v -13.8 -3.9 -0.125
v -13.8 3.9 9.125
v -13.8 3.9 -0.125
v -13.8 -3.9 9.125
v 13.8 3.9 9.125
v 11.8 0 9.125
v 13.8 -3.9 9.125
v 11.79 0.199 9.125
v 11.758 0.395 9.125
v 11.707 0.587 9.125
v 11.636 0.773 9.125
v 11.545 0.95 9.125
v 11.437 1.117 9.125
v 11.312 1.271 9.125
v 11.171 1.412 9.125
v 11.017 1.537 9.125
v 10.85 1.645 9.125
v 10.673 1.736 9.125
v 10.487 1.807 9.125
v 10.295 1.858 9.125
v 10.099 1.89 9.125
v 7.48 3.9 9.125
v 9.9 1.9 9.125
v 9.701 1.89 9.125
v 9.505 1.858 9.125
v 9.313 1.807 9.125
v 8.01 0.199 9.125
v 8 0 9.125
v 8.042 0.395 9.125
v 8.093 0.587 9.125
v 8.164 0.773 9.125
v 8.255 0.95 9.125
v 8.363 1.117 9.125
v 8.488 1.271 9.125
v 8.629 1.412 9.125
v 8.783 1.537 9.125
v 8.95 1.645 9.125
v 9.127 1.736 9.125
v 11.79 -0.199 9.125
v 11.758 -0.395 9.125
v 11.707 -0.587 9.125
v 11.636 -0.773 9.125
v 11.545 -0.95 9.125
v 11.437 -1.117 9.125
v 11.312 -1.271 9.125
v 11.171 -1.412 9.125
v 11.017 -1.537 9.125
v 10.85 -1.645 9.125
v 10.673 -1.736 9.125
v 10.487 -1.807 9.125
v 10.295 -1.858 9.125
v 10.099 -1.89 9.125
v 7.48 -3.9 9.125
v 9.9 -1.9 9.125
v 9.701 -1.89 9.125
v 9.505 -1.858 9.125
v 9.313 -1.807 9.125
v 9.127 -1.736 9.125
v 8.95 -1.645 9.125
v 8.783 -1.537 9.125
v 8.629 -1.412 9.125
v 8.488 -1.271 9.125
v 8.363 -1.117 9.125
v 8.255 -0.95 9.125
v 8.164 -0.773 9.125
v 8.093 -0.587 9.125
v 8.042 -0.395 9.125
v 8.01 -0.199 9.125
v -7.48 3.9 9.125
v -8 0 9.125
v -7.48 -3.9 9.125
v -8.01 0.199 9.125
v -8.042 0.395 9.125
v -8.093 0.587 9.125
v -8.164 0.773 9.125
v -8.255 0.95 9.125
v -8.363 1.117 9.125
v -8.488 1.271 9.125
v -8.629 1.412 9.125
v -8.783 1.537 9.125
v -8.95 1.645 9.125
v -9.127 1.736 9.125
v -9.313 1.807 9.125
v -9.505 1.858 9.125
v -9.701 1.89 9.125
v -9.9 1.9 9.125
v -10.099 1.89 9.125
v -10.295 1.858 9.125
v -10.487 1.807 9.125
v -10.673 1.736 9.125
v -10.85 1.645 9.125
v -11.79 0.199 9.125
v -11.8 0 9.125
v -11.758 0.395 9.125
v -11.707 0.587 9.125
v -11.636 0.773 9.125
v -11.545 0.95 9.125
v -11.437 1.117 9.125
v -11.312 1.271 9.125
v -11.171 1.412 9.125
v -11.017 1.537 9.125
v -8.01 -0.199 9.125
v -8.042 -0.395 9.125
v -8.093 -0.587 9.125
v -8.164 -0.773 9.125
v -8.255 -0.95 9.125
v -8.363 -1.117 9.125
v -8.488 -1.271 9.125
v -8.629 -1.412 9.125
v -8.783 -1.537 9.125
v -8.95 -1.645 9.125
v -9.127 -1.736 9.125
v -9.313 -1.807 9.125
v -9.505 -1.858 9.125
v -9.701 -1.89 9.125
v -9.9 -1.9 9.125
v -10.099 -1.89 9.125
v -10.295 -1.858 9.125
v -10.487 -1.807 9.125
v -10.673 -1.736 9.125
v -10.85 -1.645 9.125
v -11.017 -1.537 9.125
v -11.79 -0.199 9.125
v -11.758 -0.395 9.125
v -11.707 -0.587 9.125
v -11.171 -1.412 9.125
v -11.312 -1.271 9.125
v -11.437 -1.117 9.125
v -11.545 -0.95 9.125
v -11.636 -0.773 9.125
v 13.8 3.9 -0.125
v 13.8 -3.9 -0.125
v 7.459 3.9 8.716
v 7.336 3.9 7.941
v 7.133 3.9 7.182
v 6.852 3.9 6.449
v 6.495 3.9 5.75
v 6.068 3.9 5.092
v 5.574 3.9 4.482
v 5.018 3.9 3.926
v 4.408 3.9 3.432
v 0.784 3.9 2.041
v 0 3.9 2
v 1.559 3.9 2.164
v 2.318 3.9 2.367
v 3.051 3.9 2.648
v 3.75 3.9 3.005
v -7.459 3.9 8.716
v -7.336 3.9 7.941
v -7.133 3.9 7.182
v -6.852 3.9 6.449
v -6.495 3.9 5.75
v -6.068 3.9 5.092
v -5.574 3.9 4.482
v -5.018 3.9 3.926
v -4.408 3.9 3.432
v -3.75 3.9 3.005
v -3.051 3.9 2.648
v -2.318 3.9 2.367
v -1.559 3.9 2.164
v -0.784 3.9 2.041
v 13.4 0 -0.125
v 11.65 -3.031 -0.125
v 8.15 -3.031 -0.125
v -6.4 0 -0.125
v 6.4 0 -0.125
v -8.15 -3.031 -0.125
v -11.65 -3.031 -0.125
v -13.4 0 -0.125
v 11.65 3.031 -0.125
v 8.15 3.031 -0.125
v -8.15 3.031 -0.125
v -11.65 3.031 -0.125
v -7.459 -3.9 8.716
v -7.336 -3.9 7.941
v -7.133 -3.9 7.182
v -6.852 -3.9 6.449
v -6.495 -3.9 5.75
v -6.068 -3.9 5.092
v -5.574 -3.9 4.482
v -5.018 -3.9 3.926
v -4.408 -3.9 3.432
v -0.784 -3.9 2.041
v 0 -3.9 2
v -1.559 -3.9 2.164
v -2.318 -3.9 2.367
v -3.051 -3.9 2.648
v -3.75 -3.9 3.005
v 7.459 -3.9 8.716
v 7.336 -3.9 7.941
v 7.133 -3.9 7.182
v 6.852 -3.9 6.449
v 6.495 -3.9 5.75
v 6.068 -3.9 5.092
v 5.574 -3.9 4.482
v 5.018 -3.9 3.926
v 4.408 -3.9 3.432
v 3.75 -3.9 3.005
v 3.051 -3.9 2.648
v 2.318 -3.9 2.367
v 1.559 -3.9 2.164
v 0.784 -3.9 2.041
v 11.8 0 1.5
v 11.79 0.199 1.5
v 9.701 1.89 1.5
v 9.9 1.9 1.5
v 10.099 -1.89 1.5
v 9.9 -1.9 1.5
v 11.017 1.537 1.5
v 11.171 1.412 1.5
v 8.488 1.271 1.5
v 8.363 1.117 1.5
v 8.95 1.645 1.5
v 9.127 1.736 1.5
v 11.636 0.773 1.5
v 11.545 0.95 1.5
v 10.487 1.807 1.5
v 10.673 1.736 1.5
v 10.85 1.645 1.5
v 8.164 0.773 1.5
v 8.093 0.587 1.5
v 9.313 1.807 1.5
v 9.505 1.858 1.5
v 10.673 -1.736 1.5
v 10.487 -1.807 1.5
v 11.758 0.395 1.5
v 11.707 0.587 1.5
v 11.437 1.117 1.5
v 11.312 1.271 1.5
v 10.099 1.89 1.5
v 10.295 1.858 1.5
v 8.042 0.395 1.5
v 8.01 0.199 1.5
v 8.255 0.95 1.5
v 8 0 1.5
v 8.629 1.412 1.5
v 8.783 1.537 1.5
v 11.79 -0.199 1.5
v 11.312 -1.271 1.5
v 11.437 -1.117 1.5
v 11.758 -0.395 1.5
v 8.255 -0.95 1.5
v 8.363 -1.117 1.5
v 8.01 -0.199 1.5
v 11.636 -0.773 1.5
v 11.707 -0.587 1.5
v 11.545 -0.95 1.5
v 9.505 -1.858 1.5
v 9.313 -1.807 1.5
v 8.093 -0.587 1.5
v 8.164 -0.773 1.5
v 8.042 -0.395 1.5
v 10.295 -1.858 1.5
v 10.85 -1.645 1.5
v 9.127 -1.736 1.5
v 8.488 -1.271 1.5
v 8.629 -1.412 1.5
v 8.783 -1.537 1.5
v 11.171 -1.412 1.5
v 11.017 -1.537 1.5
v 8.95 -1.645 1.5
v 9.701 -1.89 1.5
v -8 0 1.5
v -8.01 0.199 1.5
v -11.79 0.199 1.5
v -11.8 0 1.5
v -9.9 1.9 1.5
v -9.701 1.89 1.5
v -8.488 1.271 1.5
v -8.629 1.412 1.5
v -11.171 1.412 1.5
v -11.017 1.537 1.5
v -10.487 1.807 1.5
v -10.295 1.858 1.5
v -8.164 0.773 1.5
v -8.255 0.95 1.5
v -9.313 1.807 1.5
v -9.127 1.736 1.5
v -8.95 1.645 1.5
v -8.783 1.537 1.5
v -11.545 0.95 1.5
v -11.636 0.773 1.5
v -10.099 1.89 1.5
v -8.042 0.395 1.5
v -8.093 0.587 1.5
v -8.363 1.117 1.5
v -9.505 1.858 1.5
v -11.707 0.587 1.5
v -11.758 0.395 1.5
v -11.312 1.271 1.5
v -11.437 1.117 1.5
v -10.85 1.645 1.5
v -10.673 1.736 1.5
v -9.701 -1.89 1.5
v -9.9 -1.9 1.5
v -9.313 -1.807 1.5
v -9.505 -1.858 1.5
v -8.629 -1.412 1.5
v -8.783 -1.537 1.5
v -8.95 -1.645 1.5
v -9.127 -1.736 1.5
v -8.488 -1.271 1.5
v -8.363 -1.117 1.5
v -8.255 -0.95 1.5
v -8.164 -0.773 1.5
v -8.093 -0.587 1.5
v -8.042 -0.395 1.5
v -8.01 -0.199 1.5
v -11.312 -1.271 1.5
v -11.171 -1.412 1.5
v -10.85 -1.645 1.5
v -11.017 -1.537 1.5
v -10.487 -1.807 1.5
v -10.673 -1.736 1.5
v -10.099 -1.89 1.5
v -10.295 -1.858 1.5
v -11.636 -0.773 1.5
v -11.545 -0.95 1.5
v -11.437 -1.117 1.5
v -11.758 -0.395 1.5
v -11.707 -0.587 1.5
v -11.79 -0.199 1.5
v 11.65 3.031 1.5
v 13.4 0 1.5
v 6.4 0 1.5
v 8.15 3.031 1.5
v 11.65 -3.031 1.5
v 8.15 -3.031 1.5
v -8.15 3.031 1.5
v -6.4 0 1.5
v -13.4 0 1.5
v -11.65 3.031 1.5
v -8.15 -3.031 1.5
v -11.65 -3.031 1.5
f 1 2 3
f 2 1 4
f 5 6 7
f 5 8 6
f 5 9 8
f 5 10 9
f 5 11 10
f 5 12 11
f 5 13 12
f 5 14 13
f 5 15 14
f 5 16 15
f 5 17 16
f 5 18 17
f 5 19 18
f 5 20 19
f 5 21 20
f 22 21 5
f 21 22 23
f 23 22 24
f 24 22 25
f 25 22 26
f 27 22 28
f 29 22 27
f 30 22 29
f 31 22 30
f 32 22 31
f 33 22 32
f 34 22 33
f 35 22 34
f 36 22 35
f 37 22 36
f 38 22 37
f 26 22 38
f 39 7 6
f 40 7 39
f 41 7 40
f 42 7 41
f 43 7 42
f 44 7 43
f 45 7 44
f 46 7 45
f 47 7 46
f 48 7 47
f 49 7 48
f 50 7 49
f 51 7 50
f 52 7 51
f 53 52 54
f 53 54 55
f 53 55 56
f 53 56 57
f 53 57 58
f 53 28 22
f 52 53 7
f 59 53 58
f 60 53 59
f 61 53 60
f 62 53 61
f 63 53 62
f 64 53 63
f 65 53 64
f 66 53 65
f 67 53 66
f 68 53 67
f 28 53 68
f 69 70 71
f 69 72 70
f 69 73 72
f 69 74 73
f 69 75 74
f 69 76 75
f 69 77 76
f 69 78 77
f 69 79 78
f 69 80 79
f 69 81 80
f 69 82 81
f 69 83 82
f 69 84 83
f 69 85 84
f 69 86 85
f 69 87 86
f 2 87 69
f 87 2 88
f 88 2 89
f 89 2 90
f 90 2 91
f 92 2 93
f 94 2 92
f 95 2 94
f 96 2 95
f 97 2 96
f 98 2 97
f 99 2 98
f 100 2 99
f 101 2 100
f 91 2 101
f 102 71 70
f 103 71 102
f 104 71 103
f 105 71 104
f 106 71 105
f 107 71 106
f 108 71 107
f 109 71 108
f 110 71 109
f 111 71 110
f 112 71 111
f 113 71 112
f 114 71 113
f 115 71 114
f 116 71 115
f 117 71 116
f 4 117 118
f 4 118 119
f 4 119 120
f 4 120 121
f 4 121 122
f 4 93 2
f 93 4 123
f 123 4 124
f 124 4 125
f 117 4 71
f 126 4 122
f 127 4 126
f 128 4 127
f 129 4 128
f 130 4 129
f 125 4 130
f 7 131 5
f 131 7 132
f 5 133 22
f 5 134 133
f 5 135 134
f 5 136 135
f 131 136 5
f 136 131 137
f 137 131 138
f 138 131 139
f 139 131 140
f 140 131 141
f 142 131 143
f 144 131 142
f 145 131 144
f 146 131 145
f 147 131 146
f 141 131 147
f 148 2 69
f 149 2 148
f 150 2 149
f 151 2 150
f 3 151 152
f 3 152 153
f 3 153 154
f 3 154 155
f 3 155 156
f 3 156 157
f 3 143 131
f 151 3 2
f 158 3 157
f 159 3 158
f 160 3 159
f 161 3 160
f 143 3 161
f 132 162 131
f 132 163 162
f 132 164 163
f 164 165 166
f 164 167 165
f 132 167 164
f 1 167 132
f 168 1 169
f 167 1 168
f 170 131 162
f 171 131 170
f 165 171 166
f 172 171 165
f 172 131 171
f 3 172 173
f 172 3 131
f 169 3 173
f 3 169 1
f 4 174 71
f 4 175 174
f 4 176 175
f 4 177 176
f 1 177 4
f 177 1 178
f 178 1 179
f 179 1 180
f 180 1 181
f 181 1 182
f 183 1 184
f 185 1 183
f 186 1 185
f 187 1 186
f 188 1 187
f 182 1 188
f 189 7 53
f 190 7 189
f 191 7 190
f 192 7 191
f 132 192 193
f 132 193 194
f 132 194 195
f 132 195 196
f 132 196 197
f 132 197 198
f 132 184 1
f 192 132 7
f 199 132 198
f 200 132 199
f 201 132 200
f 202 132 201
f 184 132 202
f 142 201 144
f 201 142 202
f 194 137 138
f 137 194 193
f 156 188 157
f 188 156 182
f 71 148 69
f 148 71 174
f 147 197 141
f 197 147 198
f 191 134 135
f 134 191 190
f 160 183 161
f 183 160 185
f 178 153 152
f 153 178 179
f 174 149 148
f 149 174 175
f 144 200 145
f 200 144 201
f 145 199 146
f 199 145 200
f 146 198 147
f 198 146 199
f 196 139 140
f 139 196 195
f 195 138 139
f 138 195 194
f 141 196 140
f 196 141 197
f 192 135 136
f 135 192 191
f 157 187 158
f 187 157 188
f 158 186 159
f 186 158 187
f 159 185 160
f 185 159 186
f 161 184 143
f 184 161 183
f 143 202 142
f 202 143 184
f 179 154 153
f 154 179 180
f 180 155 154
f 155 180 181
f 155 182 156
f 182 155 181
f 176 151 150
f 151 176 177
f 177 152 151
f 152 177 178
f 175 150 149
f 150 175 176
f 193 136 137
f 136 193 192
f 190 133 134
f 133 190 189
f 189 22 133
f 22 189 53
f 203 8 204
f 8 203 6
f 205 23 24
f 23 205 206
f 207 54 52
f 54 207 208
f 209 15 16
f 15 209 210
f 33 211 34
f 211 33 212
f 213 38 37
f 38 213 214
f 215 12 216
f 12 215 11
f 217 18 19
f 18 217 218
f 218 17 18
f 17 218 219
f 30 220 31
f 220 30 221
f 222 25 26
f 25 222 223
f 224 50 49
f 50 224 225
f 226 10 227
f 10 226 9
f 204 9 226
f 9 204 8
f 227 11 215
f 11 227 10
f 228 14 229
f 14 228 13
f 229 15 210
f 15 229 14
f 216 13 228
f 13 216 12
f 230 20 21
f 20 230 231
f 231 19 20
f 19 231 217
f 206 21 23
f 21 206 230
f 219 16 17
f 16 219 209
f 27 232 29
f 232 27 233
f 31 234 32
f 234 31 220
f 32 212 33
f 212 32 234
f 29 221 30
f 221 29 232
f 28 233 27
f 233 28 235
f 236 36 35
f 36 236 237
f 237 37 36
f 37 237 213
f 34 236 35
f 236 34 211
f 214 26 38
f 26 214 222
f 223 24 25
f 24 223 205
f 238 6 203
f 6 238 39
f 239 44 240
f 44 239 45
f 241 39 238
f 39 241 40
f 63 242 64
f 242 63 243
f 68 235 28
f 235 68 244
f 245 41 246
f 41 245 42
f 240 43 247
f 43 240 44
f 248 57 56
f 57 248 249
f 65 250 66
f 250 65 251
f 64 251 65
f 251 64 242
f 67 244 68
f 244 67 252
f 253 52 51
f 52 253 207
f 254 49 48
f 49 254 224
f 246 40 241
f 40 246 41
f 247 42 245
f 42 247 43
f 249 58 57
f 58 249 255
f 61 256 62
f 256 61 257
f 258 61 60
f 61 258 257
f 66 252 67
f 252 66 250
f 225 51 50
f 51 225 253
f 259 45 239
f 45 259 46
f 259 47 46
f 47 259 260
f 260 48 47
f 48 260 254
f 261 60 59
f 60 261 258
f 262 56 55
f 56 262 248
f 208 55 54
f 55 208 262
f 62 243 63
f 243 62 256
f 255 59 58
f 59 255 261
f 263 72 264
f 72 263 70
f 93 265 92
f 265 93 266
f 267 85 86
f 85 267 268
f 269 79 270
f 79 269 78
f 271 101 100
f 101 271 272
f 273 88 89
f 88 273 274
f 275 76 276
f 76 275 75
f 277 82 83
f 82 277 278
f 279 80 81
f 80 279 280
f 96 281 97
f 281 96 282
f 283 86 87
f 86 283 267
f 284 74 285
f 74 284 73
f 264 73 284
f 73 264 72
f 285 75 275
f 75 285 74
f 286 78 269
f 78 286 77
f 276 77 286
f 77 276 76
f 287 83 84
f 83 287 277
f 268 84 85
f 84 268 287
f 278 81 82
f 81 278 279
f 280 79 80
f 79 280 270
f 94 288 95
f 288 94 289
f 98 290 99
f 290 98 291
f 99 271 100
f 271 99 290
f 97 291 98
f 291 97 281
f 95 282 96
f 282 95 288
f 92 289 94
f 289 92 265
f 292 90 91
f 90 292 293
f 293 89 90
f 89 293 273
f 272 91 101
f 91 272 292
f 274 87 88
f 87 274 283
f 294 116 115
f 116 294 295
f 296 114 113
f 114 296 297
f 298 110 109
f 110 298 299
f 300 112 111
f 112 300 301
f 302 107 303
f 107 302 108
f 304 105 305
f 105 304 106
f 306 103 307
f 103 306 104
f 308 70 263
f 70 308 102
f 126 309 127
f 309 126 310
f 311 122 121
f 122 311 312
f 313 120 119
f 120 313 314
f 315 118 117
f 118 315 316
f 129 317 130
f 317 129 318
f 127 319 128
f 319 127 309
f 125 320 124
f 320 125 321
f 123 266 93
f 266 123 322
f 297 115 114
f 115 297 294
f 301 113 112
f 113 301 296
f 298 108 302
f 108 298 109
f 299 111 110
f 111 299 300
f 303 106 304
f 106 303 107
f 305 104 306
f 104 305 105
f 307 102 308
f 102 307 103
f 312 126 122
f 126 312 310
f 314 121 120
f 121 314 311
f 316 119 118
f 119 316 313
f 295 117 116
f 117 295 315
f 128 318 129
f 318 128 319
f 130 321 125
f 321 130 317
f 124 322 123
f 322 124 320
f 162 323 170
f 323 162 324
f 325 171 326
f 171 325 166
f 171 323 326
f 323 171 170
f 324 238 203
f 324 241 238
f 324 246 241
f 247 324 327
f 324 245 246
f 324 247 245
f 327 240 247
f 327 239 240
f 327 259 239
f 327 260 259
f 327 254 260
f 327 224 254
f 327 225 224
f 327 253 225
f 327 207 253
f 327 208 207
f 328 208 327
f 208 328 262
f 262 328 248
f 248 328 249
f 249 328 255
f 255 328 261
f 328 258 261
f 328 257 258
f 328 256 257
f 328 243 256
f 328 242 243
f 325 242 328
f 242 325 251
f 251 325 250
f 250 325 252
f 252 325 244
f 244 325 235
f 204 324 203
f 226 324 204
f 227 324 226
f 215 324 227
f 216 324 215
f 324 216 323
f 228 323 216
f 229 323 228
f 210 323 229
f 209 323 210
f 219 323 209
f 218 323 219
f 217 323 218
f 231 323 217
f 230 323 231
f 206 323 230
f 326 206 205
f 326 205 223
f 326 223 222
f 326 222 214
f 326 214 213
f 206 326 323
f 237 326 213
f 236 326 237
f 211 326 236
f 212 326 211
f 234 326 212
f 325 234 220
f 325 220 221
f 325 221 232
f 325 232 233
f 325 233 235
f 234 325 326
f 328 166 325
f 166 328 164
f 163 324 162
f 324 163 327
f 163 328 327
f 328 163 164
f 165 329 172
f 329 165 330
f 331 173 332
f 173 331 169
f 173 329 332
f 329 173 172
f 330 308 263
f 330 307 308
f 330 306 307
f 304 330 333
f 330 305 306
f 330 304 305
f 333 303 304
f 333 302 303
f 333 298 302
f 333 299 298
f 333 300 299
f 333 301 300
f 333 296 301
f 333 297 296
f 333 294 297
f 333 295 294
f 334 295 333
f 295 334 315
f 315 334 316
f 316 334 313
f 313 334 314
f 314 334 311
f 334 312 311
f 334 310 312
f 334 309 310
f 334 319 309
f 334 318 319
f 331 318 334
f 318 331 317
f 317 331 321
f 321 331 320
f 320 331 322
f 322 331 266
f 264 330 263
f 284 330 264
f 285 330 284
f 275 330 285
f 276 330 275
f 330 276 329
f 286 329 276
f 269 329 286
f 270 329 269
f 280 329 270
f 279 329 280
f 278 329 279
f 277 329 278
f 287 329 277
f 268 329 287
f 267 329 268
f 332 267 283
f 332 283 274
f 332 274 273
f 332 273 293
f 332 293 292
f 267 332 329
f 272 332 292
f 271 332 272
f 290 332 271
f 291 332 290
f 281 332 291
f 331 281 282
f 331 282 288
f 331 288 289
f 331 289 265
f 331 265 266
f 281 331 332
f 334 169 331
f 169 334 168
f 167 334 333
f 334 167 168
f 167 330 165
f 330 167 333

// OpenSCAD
dia = 15; //beam diameter
dia_gap = 0.5; //gap between two halves
screw = 3.8; //screw hole size
screw_to_beam = 0.5; //distance between beam and screw
wall = 2; //wall thickness around screw hole

hex_dia = 7; //hex bold counter sunk diameter M3=6.4 (set to 0 to ignore)
hex_depth = 1.5; //hex bold counter sunk depth M3=2.0

r = dia/2;
r_screw = screw/2;

$fn=60;

w = dia + 2 * (screw_to_beam + screw + wall); //width
d = screw + 2*wall; //depth
h = r + wall; //height

difference() {
  translate([0,0,(h-dia_gap)/2]) cube([w,d,h-dia_gap/2],center=true);

  //beam
  translate([0,0,h]) rotate([90,0,0]) cylinder(h=100,r=r,center=true);

  //screws
  screw_offset = r + r_screw + screw_to_beam;
  translate([+screw_offset,0,0]) cylinder(h=100,r=screw/2,center=true);
  translate([-screw_offset,0,0]) cylinder(h=100,r=screw/2,center=true);
  
  //counter sunk hex
  translate([+screw_offset,0,0]) cylinder(h=hex_depth*2,r=hex_dia/2,center=true, $fn=6);
  translate([-screw_offset,0,0]) cylinder(h=hex_depth*2,r=hex_dia/2,center=true, $fn=6);
}
